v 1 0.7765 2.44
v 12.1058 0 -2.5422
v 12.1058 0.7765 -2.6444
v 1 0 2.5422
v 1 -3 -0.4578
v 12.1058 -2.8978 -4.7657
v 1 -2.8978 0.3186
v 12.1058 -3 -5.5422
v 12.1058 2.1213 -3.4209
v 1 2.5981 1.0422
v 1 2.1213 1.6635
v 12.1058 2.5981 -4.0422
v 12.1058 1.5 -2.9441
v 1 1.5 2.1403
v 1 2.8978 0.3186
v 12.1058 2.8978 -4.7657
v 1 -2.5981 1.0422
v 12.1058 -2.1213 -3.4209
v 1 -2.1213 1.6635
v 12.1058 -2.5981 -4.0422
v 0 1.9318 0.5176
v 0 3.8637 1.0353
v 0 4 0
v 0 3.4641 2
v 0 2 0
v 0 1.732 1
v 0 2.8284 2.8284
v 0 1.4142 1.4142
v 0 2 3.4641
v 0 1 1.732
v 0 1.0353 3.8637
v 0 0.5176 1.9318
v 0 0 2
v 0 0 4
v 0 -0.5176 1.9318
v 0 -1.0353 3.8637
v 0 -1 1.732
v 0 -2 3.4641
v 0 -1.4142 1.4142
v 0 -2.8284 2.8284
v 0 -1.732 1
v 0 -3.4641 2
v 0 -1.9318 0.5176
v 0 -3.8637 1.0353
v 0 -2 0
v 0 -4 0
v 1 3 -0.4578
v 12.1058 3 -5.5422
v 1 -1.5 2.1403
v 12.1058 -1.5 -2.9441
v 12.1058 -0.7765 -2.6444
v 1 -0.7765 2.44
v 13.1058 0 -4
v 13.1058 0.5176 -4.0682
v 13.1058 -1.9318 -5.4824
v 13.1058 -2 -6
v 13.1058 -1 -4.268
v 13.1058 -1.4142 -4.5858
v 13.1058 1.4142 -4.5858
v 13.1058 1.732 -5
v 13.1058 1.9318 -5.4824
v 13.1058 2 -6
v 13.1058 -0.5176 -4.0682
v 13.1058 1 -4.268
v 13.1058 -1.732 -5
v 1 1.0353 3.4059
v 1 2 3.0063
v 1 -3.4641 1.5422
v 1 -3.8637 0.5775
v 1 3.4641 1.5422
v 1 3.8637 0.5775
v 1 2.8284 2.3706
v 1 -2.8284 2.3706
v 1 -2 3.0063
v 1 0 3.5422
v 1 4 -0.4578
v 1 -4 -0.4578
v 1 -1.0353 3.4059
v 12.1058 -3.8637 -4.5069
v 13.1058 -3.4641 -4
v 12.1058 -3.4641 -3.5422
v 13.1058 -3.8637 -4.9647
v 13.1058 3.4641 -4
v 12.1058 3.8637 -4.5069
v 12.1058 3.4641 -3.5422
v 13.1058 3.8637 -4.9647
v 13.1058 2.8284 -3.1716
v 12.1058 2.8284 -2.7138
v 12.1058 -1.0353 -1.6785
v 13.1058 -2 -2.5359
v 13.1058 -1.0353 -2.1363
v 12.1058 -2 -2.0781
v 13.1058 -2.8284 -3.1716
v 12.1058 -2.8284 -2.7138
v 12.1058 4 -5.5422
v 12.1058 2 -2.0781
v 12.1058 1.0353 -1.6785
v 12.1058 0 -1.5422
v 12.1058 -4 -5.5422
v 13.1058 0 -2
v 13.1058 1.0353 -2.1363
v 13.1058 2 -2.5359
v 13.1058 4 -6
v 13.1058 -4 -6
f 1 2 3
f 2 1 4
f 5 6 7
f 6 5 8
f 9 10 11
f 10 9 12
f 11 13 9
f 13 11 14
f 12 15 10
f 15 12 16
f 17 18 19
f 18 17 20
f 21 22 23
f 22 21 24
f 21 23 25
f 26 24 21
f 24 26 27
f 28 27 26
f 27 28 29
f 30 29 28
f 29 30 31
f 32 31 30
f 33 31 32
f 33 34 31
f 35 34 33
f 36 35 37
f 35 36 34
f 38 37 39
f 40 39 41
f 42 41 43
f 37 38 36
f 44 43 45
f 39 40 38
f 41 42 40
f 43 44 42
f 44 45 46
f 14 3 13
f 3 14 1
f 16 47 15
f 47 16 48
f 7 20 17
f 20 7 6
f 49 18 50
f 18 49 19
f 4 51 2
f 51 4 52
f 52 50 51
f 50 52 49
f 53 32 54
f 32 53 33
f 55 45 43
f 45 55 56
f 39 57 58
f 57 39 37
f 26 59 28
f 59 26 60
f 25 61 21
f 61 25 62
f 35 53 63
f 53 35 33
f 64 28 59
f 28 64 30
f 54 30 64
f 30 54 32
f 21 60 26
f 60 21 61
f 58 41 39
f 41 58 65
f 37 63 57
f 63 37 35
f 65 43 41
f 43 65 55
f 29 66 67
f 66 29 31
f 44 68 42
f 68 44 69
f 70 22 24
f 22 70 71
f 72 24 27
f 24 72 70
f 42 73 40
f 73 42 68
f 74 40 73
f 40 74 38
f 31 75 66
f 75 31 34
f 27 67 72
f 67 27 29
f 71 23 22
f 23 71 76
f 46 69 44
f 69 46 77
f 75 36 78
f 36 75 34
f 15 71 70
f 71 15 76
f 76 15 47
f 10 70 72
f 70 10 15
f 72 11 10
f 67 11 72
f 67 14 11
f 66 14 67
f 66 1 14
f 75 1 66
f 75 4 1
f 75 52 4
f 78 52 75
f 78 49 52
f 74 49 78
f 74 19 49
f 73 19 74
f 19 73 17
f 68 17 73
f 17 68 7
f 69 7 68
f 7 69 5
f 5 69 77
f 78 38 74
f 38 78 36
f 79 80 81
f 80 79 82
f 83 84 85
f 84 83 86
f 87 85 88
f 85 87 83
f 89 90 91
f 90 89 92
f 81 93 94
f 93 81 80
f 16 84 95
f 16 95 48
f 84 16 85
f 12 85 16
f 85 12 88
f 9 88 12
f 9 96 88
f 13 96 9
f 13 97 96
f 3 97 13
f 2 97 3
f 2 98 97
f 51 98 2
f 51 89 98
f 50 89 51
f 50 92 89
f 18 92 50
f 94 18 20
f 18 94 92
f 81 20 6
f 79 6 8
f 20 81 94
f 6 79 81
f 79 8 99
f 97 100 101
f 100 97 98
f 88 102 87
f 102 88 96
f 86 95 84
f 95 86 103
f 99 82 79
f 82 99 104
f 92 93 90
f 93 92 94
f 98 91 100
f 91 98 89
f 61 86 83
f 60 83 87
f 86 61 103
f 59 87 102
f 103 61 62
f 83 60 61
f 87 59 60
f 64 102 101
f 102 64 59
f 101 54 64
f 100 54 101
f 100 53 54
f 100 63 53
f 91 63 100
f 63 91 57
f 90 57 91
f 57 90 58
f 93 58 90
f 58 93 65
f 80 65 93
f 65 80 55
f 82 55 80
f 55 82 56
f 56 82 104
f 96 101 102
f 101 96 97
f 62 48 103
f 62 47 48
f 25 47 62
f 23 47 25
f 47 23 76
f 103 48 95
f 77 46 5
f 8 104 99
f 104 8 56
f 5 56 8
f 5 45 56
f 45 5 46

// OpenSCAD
// file: ../build_environments.scad
// build_environments.scad: modules to build level sections
//

module pool(diameter=10.0, wall_height=2.0, step_width=3.0, connections=[])
{
    difference() {
        union() {
        difference() {
            cylinder(h=0.5,r1=diameter+step_width,r2=diameter+step_width,$fn=48);
            translate([0,0,-0.1])
                cylinder(h=0.7,r1=diameter,r2=diameter,$fn=48);
        }
        difference() {
            cylinder(h=wall_height,r1=diameter+step_width+1.0,r2=diameter+step_width+1.0,$fn=48);
            translate([0,0,-0.1])
                cylinder(h=wall_height+0.2,r1=diameter+step_width,r2=diameter+step_width,$fn=48);
        }
        }
    
        for (c = connections)
        {
            rotate([0,90,0]) {
                angle = atan2(c[1],c[0]);
                rotate([-angle,0,0]) {
                    cylinder(h=diameter+5.0,r1=c[2],r2=c[2],$fn=48);
                }
            }
        }
    }
}

module straight(length=10.0, width=2.0, dy1=0.0, dy2=0.0, dz=0.0)
{
    dims = [0, 0, 0, 0, 0, (dz/length)];
    matrix = [
        [ 1, dims[0], dims[1], 0 ],
        [ dims[2], 1, dims[4], 0 ],
        [ dims[5], dims[3], 1, 0 ],
        [ 0, 0, 0, 1 ]
    ];
    multmatrix(matrix)
    difference() {
        translate([dy1,0,0])
        union() {
            rotate([0,90,0]) {
                difference() {
                    cylinder(h=(length-dy1-dy2),r1=width+1.0,r2=width+1.0,$fn=24);
                    translate([0,0,-0.1])
                        cylinder(h=(length-dy1-dy2+0.2),r1=width,r2=width,$fn=24);
                }
                difference() {
                    cylinder(h=1.0,r1=width+2.0,r2=width+2.0,$fn=24);
                    translate([0,0,-0.1])
                        cylinder(h=1.2,r1=width,r2=width,$fn=24);
                }
                translate([0,0,(length-dy1-dy2)-1.0]) {
                    difference() {
                        cylinder(h=1.0,r1=width+2.0,r2=width+2.0,$fn=24);
                        translate([0,0,-0.1])
                            cylinder(h=1.2,r1=width,r2=width,$fn=24);
                    }
                }
            }
        }
        translate([0,0,-(2*width+4.0)/2])
            cube([3*length,3*length,2*width+4.0],center=true);
    }
}

module curve(p0=[0,0], center=[0,0], dir=1, angle=0.0, width=2.0)
{
    radius = sqrt((p0[0]-center[0])*(p0[0]-center[0]) + (p0[1]-center[1])*(p0[1]-center[1]));
    if (dir == 0) {
        difference() {
            rotate([0,0,-90])
            difference() {
                rotate_extrude(angle = angle, convexity = 10, $fn=32)
                    translate([radius, 0, 0])
                        circle(r = width+1.0,$fn=24);
                rotate([0,0,-1.0])
                    rotate_extrude(angle = angle+2.0, convexity = 10, $fn=32)
                        translate([radius, 0, 0])
                            circle(r = width,$fn=24);
            }
            translate([0,0,-(2*width+4.0)/2])
                cube([5*radius,5*radius,2*width+4.0],center=true);
        }
    }
    else {
        difference() {
            rotate([0,0,90])
            difference() {
                rotate_extrude(angle = -angle, convexity = 10, $fn=32)
                    translate([radius, 0, 0])
                        circle(r = width+1.0,$fn=24);
                rotate([0,0,1.0])
                    rotate_extrude(angle = -angle-2.0, convexity = 10, $fn=32)
                        translate([radius, 0, 0])
                            circle(r = width,$fn=24);
            }
            translate([0,0,-(2*width+4.0)/2])
                cube([5*radius,5*radius,2*width+4.0],center=true);
        }
    }

}

// test pool
//pool(diameter=12.0000, wall_height=3.0000, step_width=3.0000, connections=[[0.0000,-26.0000,2.0000], [23.6074,0.0000,2.0000]]);

// test straight, slope
//straight(length=26.0000, width=2.0000, dy1=11.8322, dy2=6.7082, dz=0.0000);
//straight(length=29.1549, width=12.0000, dy1=0.0000, dy2=0.0000, dz=-15.0000);

// test curve
//curve(p0=[23.6074, 0.0000], center=[23.6074, 5.0000], dir=0, angle=60.1011, width=2.0000);
//curve(p0=[33.6426, 12.4219], center=[37.9771, 9.9295], dir=1, angle=120.4627, width=2.0000);
// main file
use <../build_environments.scad>;
straight(length=13.1058, width=2.0000, dy1=0.0000, dy2=0.0000, dz=-6.0000);
